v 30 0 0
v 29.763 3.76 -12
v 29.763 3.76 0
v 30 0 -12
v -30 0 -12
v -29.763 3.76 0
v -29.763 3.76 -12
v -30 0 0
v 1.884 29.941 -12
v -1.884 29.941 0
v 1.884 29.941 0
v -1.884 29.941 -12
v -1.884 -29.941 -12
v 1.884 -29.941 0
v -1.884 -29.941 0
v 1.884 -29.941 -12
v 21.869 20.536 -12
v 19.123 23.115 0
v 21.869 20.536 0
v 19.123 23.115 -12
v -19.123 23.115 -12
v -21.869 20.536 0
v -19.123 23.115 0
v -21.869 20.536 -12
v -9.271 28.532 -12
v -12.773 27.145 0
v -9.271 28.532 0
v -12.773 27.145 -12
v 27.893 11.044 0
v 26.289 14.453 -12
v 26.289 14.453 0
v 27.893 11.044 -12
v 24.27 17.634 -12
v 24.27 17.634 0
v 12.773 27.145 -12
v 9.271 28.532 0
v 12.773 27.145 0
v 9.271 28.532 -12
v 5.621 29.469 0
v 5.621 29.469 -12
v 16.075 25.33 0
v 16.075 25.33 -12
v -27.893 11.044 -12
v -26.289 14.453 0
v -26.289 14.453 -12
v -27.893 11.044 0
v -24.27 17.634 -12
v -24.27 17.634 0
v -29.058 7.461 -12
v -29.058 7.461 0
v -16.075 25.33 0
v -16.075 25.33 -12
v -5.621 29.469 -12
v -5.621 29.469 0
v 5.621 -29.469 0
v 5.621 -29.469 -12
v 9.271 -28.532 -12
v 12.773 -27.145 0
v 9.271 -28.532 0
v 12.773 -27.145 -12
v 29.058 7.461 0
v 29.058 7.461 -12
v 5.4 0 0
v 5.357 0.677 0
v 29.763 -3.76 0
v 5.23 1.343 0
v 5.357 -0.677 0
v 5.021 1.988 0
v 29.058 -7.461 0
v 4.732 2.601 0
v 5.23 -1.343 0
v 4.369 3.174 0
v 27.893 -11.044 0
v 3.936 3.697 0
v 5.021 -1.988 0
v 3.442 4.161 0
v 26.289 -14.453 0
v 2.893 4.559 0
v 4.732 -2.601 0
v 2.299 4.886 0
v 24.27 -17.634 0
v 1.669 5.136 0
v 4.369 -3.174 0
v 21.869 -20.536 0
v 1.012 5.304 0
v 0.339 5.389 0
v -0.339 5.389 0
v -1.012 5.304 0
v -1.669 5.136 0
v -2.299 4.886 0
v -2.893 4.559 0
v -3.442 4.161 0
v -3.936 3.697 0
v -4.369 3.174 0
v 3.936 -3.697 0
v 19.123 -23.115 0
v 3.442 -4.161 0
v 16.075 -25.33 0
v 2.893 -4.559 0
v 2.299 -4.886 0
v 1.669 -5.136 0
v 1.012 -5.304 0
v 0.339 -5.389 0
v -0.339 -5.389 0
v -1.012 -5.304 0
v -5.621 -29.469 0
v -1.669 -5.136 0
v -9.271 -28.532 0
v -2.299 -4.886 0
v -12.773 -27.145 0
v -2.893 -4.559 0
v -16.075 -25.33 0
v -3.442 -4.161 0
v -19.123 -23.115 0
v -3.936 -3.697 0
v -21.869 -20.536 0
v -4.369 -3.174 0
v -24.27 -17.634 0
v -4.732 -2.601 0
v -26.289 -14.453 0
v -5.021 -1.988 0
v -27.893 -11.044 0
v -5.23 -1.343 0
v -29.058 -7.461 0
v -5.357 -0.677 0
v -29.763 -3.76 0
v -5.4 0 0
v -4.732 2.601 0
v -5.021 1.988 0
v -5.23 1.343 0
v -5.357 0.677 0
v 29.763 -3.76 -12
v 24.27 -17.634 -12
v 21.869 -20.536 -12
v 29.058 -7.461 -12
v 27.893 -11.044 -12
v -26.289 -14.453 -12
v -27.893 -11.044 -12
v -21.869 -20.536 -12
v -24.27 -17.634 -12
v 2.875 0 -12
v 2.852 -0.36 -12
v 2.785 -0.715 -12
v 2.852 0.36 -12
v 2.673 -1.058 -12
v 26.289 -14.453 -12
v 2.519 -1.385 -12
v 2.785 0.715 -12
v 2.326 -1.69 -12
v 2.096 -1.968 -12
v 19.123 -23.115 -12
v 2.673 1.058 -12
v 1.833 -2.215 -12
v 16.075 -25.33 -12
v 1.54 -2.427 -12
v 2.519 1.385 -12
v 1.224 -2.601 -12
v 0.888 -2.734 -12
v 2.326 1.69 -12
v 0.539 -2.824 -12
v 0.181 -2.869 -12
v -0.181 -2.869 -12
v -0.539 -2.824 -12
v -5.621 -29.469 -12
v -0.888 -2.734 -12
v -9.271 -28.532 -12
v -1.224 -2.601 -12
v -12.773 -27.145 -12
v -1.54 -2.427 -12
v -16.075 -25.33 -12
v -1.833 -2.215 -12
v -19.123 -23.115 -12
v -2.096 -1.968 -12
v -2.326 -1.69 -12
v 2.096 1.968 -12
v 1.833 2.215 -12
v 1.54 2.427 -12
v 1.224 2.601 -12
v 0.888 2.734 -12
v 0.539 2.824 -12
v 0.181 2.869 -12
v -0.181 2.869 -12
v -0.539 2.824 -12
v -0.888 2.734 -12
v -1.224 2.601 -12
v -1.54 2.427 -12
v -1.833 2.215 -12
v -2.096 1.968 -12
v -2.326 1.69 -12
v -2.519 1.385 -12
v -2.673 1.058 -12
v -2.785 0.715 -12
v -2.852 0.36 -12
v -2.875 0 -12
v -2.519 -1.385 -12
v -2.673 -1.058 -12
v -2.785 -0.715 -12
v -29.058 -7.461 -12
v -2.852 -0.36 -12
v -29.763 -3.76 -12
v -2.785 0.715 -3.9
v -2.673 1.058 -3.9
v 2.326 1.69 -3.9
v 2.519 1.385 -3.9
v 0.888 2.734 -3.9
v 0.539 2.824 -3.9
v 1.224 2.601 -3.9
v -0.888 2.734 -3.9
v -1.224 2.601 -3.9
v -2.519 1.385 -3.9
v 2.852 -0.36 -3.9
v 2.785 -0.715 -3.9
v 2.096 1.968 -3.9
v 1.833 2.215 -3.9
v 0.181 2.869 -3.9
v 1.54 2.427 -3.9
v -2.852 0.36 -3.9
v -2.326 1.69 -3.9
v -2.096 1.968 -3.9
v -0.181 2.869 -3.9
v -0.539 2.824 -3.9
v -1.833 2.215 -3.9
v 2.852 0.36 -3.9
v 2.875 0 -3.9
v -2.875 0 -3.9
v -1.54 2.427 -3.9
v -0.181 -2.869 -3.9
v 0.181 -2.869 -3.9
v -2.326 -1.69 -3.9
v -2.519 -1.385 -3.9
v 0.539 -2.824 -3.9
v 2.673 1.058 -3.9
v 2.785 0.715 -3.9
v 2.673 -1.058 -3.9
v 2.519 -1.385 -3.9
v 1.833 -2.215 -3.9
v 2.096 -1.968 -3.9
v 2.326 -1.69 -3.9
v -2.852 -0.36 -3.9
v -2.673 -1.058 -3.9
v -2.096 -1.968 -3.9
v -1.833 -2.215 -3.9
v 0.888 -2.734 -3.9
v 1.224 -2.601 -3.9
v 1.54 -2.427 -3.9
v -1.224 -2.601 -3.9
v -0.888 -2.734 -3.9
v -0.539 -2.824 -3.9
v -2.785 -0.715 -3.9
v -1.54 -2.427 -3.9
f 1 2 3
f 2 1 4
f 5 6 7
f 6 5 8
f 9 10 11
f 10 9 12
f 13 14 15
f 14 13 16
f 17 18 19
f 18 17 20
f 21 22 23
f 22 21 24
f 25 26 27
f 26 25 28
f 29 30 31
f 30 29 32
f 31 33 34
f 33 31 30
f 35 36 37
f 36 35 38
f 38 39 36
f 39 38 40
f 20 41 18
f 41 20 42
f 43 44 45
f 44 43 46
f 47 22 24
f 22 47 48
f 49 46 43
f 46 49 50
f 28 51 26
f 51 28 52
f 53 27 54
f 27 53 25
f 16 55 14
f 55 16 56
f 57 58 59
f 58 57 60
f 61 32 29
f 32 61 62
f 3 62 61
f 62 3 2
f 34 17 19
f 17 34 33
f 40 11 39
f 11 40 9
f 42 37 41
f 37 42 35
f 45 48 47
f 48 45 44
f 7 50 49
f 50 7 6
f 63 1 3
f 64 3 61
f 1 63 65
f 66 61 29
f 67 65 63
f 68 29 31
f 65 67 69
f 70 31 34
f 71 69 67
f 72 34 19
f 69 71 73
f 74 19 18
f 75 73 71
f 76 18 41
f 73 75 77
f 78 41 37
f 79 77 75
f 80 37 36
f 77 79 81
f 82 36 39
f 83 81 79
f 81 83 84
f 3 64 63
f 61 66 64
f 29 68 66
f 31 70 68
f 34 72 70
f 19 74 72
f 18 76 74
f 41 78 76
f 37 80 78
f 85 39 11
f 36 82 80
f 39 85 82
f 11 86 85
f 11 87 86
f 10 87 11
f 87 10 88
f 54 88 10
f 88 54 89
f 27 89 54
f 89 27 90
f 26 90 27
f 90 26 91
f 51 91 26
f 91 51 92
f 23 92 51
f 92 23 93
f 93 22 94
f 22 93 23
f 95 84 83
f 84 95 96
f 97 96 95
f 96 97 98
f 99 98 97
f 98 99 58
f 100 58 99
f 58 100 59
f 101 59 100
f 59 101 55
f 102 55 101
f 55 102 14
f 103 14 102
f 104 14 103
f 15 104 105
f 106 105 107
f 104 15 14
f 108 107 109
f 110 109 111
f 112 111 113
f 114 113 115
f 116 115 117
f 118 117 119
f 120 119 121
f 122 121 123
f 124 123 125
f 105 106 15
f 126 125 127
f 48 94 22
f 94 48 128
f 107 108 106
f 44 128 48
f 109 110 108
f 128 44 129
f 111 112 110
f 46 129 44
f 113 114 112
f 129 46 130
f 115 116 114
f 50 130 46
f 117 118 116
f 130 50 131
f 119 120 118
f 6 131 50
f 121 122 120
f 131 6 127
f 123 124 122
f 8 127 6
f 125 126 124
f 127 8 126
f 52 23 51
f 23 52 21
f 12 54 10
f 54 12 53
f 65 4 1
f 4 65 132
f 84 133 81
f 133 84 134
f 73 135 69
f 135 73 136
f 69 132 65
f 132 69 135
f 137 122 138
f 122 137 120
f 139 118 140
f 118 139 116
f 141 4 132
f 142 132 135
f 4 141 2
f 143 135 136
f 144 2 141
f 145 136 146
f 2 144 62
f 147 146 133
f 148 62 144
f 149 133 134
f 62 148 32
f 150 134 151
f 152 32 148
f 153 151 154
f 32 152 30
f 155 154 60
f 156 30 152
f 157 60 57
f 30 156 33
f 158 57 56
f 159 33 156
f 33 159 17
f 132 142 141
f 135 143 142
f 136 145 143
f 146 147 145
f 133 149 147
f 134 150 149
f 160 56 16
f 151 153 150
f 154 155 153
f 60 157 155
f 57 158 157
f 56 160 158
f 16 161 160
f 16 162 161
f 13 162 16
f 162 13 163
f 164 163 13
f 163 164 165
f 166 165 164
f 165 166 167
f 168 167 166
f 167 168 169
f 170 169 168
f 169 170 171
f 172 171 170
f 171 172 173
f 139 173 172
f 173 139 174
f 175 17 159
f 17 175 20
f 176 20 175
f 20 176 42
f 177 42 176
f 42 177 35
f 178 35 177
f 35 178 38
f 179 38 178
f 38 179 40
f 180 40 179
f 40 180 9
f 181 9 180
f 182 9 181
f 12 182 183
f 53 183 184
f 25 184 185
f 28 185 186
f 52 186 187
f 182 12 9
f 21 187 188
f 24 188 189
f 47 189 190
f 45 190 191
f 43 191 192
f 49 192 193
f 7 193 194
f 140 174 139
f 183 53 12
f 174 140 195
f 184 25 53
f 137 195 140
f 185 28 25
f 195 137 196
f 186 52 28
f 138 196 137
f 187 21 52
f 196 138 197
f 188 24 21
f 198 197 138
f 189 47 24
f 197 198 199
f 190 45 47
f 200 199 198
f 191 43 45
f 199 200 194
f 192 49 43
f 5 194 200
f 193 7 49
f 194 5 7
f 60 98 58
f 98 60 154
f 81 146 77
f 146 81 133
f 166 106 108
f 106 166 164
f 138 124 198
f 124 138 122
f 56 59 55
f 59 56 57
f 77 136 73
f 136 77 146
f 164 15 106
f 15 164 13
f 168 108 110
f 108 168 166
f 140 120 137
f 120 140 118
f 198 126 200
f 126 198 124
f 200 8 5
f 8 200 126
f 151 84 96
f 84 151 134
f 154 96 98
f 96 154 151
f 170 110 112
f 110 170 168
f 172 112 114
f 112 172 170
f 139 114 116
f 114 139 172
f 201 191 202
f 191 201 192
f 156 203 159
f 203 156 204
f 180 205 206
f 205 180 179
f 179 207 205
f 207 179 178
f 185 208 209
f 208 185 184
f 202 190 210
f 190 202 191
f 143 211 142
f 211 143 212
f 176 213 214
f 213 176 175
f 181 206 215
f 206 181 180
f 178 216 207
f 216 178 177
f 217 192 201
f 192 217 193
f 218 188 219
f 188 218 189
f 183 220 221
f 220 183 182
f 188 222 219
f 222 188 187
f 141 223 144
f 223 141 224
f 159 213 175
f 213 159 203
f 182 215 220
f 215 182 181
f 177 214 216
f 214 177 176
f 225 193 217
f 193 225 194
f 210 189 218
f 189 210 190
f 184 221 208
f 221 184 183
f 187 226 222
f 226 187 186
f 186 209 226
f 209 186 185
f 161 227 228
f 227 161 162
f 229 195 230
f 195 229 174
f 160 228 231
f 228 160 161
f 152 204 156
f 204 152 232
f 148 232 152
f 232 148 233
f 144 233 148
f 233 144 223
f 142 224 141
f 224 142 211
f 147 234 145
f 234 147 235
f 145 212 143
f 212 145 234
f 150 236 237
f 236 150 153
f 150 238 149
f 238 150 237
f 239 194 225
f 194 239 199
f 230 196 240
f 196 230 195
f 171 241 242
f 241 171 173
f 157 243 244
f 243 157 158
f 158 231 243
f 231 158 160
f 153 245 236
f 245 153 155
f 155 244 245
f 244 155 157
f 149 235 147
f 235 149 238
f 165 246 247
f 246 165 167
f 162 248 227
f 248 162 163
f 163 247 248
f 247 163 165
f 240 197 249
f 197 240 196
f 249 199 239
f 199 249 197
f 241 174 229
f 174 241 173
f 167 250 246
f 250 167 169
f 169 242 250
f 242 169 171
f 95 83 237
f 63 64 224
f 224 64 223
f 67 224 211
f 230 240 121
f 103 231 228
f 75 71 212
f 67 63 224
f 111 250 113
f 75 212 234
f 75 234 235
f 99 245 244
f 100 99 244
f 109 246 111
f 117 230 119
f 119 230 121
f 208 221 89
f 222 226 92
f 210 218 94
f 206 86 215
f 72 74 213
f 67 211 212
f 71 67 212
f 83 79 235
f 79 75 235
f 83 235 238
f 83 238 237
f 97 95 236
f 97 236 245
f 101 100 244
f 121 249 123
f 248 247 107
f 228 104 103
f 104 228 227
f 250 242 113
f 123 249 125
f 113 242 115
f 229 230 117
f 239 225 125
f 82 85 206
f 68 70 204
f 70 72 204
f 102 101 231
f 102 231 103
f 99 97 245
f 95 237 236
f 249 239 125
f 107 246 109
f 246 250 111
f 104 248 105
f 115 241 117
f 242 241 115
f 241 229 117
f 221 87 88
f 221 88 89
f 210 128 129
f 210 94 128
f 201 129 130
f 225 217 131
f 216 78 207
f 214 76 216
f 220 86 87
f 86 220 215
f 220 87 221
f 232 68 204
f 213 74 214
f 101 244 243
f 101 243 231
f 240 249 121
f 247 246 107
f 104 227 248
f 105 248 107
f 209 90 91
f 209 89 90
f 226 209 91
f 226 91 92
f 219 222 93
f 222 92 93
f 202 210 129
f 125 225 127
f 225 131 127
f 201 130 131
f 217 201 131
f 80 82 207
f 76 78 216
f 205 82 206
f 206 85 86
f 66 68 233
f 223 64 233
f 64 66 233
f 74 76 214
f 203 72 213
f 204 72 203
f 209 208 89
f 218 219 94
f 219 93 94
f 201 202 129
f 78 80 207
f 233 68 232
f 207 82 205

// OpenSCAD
$fn = 50;


difference() {
	union() {
		translate(v = [0, 0, -12.0000000000]) {
			cylinder(h = 12, r = 30.0000000000);
		}
		translate(v = [0, 0, -15.0000000000]) {
			cylinder(h = 15, r = 2.8750000000);
		}
	}
	union() {
		translate(v = [0, 0, 0]) {
			rotate(a = [0, 0, 0]) {
				difference() {
					union() {
						translate(v = [0, 0, -15.0000000000]) {
							cylinder(h = 15, r = 2.6000000000);
						}
						translate(v = [0, 0, -3.9000000000]) {
							cylinder(h = 3.9000000000, r1 = 2.8750000000, r2 = 5.4000000000);
						}
						translate(v = [0, 0, -15.0000000000]) {
							cylinder(h = 15, r = 2.8750000000);
						}
						translate(v = [0, 0, -15.0000000000]) {
							cylinder(h = 15, r = 2.6000000000);
						}
					}
					union();
				}
			}
		}
	}
}
